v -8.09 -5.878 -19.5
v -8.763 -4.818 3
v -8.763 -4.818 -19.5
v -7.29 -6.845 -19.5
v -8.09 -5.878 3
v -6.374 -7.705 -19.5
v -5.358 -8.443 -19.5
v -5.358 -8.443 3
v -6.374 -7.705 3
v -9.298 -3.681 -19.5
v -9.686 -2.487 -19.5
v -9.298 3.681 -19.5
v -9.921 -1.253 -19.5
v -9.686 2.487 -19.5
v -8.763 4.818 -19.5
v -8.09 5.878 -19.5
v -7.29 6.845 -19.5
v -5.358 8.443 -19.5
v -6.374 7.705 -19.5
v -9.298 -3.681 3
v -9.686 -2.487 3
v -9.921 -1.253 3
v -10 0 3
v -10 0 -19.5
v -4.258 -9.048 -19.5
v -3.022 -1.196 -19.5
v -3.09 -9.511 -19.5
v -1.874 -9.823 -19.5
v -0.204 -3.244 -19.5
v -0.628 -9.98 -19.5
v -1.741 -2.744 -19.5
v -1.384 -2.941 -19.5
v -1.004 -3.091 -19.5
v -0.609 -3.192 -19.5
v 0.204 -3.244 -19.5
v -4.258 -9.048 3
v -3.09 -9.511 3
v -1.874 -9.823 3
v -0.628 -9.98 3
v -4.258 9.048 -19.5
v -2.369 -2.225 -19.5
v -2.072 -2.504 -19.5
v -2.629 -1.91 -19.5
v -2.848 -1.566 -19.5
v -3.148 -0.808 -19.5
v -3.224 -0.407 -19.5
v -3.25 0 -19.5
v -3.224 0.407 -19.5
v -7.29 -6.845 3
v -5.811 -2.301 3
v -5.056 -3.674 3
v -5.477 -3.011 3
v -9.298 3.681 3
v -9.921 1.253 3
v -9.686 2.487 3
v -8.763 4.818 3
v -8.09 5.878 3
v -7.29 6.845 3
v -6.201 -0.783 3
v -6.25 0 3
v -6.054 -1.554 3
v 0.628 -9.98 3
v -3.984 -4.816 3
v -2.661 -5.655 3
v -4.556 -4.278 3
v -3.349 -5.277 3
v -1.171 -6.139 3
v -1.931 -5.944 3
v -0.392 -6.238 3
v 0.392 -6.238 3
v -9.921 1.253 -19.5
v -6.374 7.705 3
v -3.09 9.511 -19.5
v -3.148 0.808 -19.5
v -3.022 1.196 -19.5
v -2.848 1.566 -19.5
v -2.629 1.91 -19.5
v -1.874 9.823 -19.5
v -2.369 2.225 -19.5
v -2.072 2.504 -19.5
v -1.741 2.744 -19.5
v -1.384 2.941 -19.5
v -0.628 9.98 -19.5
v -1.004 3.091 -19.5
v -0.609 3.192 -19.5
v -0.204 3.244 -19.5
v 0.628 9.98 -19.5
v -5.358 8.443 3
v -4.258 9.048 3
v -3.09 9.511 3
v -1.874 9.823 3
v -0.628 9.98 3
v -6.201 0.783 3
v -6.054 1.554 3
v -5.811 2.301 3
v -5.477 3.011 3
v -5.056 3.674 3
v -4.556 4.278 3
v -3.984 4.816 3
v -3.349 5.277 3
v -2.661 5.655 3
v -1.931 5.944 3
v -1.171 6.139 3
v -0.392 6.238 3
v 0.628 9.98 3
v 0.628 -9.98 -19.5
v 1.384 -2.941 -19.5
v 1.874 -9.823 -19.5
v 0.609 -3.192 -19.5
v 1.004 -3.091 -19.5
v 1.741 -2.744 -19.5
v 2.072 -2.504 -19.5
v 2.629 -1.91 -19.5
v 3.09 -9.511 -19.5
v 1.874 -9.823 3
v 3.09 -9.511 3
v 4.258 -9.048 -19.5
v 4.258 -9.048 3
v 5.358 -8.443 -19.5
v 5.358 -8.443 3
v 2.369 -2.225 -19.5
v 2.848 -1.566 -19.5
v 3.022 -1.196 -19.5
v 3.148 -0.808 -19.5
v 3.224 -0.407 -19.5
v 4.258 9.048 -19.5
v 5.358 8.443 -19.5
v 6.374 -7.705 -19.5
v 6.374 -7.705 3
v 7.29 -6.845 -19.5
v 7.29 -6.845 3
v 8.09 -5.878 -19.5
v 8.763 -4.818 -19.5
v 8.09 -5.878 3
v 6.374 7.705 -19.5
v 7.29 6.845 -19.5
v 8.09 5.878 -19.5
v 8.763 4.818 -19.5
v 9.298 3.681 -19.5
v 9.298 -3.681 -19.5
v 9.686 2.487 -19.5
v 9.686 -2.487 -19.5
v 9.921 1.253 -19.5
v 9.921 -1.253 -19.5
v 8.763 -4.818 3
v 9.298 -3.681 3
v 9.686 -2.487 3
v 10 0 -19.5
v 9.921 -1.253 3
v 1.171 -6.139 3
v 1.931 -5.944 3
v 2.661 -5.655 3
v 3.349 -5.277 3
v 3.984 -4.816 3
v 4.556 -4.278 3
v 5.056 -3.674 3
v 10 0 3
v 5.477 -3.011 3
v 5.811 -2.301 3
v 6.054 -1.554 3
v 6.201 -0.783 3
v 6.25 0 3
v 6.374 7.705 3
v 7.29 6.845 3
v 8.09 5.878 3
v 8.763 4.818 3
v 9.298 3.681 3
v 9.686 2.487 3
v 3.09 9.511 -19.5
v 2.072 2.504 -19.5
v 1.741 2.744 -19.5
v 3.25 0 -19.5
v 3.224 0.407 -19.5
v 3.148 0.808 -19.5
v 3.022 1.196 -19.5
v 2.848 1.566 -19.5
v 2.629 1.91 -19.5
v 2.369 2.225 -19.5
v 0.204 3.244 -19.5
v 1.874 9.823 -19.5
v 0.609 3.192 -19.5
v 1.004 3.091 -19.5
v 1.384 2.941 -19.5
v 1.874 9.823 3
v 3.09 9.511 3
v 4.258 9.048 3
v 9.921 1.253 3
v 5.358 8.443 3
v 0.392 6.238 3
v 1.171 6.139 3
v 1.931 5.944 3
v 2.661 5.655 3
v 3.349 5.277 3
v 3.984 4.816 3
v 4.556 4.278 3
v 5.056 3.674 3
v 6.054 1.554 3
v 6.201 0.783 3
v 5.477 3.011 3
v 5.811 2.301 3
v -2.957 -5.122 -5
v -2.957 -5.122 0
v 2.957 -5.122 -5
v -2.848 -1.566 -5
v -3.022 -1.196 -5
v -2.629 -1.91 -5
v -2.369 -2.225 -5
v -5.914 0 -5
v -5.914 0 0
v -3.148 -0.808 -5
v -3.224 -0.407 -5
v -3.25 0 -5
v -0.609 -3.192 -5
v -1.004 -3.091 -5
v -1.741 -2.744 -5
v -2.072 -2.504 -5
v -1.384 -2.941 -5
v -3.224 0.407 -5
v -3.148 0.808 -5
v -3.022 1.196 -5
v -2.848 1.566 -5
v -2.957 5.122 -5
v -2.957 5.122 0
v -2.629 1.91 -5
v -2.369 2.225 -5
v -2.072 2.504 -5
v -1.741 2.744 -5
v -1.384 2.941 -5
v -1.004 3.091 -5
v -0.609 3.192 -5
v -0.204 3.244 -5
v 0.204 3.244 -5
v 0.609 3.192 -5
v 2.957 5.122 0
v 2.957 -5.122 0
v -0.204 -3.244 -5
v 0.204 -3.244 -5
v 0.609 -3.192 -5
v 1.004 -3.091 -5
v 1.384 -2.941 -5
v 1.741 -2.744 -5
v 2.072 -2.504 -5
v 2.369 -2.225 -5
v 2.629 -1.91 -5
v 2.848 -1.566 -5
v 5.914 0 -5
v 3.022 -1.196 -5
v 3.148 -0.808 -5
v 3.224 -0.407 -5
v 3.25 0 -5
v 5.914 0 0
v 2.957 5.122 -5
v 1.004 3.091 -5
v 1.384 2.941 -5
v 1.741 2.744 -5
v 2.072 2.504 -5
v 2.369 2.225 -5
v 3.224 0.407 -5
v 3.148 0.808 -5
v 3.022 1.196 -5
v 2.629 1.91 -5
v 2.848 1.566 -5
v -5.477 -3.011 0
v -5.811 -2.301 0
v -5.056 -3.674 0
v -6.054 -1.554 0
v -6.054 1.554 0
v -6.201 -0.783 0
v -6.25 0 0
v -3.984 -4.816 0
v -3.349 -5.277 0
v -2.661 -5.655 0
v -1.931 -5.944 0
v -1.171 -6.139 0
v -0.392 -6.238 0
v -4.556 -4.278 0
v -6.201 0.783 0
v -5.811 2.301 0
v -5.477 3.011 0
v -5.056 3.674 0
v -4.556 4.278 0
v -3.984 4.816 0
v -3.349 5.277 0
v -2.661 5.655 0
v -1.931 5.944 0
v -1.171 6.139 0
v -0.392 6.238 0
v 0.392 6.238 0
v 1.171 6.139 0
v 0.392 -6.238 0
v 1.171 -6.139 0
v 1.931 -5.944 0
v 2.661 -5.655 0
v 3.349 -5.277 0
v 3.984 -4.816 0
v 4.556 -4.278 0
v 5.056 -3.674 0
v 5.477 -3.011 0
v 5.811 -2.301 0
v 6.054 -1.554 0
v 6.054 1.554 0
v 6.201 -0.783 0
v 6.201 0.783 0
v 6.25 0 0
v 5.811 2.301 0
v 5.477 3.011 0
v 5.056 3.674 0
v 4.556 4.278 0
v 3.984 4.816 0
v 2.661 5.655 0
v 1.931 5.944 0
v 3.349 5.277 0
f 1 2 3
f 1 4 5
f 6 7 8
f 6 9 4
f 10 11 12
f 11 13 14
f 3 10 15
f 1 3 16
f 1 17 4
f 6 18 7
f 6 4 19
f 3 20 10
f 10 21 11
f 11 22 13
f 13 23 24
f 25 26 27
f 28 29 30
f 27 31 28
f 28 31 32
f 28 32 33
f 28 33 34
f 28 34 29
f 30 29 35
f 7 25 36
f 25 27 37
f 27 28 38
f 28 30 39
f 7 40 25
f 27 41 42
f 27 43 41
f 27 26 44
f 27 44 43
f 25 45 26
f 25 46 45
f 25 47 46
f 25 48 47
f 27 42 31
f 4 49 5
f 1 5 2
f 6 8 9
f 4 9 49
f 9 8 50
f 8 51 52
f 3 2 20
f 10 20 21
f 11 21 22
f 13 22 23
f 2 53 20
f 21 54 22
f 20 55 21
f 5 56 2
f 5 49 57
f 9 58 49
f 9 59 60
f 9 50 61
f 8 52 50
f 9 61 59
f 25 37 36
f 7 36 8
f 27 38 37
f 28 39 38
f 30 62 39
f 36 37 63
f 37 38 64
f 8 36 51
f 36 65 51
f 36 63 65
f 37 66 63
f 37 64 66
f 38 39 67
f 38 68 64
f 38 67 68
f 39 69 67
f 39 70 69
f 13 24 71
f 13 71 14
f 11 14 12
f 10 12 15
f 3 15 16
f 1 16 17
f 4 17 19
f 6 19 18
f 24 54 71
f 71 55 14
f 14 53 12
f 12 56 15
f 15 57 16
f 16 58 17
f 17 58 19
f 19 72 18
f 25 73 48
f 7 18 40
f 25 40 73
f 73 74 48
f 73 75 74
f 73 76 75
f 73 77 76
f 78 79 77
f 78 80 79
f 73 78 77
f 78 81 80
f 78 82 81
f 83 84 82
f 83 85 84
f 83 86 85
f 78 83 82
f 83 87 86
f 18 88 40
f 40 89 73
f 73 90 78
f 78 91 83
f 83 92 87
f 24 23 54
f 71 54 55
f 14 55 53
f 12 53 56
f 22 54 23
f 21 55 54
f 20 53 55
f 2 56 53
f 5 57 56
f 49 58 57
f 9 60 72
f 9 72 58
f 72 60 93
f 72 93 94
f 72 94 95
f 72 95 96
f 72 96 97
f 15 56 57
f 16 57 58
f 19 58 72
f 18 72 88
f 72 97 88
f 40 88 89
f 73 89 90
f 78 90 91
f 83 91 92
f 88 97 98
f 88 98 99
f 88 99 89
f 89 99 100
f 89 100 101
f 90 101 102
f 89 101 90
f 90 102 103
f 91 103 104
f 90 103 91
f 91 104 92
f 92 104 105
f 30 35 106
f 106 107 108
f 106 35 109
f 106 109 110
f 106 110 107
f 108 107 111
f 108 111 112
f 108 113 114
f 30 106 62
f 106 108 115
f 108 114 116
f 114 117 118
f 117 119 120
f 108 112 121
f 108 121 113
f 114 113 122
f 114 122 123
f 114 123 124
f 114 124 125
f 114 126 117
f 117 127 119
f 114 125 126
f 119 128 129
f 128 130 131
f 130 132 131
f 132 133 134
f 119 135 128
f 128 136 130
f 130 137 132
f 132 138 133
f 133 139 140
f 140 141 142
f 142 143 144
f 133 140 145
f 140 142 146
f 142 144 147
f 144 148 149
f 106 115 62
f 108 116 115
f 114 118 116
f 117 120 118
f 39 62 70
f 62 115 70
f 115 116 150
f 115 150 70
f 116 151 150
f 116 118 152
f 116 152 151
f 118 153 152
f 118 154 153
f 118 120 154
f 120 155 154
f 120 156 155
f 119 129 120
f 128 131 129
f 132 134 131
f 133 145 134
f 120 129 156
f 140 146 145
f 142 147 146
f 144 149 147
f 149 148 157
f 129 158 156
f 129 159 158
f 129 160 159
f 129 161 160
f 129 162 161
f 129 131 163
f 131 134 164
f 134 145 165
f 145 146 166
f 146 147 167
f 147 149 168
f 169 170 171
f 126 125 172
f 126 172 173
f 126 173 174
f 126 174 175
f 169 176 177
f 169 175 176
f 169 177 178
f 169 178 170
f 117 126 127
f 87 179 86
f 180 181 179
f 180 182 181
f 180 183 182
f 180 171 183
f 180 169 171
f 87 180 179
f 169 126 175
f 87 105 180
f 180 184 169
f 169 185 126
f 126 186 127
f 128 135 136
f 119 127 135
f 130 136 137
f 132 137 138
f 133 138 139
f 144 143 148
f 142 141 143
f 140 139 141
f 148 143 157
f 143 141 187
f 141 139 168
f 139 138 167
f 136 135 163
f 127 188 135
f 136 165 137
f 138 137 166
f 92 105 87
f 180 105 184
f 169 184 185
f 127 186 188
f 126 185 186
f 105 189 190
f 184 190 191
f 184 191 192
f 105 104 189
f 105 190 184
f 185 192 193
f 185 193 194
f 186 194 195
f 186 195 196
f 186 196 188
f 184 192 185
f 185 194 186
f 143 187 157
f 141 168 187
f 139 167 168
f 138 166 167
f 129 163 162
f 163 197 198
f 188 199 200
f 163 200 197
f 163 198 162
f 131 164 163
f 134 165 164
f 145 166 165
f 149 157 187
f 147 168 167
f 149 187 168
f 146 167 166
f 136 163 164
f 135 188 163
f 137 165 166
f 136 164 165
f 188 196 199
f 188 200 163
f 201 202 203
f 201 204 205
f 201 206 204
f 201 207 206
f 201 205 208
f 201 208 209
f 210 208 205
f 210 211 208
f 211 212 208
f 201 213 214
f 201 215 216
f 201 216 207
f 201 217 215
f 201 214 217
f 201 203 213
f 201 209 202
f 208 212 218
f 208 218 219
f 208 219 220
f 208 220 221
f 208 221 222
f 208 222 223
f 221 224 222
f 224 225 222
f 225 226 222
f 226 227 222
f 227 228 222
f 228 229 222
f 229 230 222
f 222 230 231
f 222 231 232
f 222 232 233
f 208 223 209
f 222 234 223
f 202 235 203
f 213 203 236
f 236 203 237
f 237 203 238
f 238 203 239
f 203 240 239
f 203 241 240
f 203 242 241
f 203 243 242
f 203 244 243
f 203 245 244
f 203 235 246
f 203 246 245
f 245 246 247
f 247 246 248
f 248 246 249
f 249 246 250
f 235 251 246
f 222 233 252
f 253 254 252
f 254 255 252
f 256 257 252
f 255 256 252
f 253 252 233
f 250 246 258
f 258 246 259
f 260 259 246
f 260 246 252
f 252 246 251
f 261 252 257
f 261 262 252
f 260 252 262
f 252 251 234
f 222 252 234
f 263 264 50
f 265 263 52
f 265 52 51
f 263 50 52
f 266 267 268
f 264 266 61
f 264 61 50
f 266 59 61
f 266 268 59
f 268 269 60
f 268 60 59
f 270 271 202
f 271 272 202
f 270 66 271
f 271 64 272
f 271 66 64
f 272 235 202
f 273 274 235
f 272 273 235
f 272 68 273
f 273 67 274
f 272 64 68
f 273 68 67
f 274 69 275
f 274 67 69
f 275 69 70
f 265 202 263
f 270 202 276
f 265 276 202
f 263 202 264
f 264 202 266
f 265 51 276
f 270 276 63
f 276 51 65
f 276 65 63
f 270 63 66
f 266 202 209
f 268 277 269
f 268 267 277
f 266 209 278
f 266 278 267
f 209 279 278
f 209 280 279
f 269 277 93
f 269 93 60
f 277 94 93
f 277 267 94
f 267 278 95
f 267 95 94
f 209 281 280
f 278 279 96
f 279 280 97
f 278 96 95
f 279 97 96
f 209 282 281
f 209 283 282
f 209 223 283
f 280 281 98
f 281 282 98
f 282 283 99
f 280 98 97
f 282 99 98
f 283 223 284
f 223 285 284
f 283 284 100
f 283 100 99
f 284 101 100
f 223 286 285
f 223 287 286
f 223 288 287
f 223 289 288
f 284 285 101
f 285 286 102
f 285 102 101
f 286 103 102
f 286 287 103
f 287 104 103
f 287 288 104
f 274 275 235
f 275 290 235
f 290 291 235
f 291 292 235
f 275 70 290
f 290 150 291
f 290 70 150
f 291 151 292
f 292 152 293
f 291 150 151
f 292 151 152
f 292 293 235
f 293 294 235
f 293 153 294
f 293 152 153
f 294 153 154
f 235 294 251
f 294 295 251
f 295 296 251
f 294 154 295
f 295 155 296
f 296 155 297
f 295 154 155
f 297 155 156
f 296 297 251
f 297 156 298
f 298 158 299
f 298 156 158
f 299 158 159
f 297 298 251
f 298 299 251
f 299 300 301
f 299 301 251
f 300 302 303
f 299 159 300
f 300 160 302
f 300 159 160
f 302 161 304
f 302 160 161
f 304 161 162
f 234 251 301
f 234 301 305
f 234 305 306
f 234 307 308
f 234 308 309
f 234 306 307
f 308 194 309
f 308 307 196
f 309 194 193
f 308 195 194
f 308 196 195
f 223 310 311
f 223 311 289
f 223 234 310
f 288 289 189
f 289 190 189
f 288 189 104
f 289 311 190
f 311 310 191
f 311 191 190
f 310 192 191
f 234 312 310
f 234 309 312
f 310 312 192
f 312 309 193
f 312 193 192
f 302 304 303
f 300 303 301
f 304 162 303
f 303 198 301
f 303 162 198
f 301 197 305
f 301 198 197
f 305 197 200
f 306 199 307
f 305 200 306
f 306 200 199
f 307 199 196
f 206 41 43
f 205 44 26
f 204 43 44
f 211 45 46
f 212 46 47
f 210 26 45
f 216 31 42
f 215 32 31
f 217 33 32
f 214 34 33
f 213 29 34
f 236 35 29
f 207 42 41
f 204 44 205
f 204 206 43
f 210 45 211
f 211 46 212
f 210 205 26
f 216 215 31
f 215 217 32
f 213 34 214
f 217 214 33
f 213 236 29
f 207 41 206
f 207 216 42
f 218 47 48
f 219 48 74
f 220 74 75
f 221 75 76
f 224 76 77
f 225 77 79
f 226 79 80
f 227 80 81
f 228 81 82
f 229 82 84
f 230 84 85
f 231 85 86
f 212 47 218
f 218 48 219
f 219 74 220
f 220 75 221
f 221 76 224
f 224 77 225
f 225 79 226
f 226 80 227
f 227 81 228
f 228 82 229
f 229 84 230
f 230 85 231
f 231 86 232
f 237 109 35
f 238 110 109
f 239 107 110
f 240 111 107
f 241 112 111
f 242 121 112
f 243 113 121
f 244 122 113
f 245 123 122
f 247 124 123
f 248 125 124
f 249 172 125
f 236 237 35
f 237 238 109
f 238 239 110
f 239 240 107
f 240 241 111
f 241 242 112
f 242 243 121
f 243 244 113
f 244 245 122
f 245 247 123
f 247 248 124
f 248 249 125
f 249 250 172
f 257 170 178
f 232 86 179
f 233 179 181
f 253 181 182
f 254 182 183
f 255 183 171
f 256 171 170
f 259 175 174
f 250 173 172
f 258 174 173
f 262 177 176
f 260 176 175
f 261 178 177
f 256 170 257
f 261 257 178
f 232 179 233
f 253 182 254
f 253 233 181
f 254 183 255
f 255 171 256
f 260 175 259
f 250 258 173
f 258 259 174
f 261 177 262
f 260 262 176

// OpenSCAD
$fn = 50;

difference() {
	union() {
		translate(v = [0, 0, -19.5]) {
			cylinder(h = 22.5, r = 10.0);
		}
		#translate(v = [0, 0, -21.0]) {
			cylinder(h = 21, r = 2.875);
		}
	}
	union() {
		translate(v = [0, 0, 0]) {
			rotate(a = [0, 0, 0]) {
				difference() {
					union() {
						translate(v = [0, 0, -5]) {
							linear_extrude(height = 5) {
								polygon(points = [[5.914249999999999, 0.0], [2.957125, 5.1218907443321156], [-2.9571249999999982, 5.1218907443321156], [-5.914249999999999, 7.242867331857232e-16], [-2.9571250000000022, -5.121890744332115], [2.9571249999999956, -5.121890744332118]]);
							}
						}
					}
					union();
				}
			}
		}
		#cylinder(h = 3, r = 6.25);
		#translate(v = [0, 0, -100.0]) {
			cylinder(h = 200, r = 3.25);
		}
	}
}
